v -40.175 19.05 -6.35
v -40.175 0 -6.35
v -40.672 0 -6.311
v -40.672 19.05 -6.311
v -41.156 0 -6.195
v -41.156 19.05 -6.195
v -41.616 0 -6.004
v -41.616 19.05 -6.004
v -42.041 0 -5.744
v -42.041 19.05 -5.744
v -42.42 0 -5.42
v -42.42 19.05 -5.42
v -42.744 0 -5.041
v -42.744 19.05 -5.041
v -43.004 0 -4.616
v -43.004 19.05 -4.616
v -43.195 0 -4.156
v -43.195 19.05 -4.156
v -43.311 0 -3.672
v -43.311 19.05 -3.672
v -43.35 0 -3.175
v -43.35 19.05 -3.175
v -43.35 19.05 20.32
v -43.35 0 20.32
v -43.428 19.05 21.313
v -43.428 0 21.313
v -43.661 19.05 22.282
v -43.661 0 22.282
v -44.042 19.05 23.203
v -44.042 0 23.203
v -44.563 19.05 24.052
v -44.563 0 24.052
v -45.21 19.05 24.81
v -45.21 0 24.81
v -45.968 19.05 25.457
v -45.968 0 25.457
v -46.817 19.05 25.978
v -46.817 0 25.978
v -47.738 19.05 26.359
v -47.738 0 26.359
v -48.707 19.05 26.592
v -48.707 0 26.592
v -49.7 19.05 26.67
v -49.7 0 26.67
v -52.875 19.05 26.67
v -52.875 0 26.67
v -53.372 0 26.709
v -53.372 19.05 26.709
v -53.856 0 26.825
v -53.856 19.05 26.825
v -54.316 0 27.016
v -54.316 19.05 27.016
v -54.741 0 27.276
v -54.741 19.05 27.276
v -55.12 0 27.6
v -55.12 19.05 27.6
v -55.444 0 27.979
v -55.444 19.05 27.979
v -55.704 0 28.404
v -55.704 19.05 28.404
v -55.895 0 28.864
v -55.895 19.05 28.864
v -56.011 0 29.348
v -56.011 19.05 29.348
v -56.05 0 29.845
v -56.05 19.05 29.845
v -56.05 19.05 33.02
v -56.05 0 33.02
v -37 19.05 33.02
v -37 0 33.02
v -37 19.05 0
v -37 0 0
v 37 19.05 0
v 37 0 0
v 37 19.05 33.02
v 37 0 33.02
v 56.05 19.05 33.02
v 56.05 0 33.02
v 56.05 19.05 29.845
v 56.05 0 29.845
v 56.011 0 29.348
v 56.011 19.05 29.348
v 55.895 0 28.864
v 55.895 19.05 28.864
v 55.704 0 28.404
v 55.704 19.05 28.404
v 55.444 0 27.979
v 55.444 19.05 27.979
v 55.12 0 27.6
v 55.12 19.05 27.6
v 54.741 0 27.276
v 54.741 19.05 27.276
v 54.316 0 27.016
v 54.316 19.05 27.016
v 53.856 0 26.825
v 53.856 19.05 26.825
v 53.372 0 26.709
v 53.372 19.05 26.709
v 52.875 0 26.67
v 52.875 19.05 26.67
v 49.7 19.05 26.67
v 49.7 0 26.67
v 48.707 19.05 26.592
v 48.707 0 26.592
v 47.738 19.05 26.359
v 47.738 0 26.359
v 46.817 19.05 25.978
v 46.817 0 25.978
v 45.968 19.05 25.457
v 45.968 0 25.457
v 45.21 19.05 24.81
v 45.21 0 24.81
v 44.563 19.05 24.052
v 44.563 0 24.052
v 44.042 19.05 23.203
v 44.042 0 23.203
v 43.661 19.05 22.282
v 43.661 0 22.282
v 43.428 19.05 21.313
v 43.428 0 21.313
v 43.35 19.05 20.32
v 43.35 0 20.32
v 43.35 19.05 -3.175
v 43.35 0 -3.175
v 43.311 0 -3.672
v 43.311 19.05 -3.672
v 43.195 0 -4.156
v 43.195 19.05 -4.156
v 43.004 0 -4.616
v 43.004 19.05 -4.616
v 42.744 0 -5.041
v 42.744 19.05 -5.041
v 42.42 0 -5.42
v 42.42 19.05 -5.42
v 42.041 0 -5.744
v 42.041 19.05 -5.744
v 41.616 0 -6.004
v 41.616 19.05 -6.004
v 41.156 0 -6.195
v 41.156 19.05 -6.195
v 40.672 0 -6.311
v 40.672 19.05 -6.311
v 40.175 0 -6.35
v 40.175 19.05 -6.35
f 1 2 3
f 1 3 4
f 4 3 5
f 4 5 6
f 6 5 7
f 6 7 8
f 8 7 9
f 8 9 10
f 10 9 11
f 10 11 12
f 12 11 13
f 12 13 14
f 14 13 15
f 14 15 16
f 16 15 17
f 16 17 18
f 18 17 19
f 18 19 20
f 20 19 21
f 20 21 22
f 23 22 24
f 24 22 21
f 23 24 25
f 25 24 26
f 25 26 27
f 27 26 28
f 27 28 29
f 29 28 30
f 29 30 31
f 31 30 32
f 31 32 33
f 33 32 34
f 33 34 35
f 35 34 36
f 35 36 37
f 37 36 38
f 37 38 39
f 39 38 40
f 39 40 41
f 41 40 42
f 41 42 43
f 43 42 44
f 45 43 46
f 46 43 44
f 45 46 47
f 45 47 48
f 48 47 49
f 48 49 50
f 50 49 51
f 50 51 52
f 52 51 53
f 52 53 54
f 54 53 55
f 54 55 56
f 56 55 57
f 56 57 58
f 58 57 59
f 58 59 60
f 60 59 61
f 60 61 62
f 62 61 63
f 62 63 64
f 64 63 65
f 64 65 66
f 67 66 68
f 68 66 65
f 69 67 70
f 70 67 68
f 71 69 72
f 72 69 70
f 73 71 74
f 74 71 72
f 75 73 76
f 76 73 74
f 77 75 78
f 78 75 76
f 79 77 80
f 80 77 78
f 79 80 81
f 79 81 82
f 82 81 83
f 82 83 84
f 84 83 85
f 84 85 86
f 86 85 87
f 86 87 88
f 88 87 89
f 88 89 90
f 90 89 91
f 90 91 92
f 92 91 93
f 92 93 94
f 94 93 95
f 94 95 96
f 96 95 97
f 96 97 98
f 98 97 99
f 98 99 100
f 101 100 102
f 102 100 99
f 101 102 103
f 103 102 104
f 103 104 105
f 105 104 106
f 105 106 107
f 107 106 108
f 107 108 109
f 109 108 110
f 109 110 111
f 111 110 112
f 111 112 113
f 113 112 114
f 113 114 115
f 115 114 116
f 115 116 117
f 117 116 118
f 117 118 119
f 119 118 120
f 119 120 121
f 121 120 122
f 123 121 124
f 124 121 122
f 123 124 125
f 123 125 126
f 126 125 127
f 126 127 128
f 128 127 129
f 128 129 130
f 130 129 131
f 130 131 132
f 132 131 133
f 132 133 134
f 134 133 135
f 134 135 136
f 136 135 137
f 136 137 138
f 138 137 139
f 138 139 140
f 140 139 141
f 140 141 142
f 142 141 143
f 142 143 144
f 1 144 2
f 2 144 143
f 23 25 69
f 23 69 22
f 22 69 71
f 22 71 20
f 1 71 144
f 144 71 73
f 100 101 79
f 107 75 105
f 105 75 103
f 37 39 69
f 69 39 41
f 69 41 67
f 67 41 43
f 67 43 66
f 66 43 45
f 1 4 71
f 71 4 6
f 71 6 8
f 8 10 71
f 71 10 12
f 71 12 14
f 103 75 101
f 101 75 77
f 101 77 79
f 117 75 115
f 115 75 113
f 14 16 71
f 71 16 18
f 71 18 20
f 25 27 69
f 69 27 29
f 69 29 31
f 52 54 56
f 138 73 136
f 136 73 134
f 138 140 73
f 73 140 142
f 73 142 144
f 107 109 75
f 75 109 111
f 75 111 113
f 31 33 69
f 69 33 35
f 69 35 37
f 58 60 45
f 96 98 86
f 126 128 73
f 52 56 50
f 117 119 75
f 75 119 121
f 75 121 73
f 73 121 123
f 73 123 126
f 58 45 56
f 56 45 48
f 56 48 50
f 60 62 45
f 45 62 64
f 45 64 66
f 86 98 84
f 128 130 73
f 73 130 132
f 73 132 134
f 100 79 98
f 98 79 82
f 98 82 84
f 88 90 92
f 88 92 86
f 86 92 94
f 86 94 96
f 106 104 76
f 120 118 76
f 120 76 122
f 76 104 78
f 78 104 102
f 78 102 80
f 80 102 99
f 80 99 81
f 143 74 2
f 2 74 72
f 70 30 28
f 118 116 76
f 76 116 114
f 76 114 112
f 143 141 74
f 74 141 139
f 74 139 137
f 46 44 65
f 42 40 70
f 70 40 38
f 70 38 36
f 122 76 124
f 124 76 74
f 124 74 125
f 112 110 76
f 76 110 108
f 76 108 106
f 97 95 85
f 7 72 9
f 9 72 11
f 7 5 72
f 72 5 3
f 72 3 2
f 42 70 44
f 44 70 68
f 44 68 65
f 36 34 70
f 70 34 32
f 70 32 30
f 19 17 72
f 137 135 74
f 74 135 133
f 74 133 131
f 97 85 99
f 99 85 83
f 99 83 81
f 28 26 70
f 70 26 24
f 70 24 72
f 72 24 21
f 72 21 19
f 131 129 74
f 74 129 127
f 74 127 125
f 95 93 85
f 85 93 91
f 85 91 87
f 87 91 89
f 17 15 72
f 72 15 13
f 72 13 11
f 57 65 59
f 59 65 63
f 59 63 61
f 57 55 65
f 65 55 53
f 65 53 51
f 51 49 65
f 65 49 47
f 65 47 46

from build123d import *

# Parameters (mm, degrees)
BOSS_EXTRUDE1_DEPTH = 19.05


with BuildPart() as part:
    # Sketch1 → Boss-Extrude1 (new body)
    with BuildSketch(Plane(origin=(0, 0, 0), x_dir=(1, 0, 0), z_dir=(0, 1, 0))):
        with BuildLine():
            Line((-37, -33.02), (-37, 0))
            Line((-37, 0), (37, 0))
            Line((37, 0), (37, -33.02))
            Line((37, -33.02), (56.05, -33.02))
            Line((56.05, -33.02), (56.05, -29.845))
            ThreePointArc((56.05, -29.845), (55.12006403, -27.59993597), (52.875, -26.67))
            Line((52.875, -26.67), (49.7, -26.67))
            ThreePointArc((49.7, -26.67), (45.209871939, -24.810128061), (43.35, -20.32))
            Line((43.35, -20.32), (43.35, 0))
            Line((43.35, 0), (43.35, 3.175))
            ThreePointArc((43.35, 3.175), (42.42006403, 5.42006403), (40.175, 6.35))
            Line((40.175, 6.35), (-40.175, 6.35))
            ThreePointArc((-40.175, 6.35), (-42.42006403, 5.42006403), (-43.35, 3.175))
            Line((-43.35, 3.175), (-43.35, 0))
            Line((-43.35, 0), (-43.35, -20.32))
            ThreePointArc((-43.35, -20.32), (-45.209871939, -24.810128061), (-49.7, -26.67))
            Line((-49.7, -26.67), (-52.875, -26.67))
            ThreePointArc((-52.875, -26.67), (-55.12006403, -27.59993597), (-56.05, -29.845))
            Line((-56.05, -29.845), (-56.05, -33.02))
            Line((-56.05, -33.02), (-37, -33.02))
        make_face()
    extrude(amount=BOSS_EXTRUDE1_DEPTH)


solid = part.part
